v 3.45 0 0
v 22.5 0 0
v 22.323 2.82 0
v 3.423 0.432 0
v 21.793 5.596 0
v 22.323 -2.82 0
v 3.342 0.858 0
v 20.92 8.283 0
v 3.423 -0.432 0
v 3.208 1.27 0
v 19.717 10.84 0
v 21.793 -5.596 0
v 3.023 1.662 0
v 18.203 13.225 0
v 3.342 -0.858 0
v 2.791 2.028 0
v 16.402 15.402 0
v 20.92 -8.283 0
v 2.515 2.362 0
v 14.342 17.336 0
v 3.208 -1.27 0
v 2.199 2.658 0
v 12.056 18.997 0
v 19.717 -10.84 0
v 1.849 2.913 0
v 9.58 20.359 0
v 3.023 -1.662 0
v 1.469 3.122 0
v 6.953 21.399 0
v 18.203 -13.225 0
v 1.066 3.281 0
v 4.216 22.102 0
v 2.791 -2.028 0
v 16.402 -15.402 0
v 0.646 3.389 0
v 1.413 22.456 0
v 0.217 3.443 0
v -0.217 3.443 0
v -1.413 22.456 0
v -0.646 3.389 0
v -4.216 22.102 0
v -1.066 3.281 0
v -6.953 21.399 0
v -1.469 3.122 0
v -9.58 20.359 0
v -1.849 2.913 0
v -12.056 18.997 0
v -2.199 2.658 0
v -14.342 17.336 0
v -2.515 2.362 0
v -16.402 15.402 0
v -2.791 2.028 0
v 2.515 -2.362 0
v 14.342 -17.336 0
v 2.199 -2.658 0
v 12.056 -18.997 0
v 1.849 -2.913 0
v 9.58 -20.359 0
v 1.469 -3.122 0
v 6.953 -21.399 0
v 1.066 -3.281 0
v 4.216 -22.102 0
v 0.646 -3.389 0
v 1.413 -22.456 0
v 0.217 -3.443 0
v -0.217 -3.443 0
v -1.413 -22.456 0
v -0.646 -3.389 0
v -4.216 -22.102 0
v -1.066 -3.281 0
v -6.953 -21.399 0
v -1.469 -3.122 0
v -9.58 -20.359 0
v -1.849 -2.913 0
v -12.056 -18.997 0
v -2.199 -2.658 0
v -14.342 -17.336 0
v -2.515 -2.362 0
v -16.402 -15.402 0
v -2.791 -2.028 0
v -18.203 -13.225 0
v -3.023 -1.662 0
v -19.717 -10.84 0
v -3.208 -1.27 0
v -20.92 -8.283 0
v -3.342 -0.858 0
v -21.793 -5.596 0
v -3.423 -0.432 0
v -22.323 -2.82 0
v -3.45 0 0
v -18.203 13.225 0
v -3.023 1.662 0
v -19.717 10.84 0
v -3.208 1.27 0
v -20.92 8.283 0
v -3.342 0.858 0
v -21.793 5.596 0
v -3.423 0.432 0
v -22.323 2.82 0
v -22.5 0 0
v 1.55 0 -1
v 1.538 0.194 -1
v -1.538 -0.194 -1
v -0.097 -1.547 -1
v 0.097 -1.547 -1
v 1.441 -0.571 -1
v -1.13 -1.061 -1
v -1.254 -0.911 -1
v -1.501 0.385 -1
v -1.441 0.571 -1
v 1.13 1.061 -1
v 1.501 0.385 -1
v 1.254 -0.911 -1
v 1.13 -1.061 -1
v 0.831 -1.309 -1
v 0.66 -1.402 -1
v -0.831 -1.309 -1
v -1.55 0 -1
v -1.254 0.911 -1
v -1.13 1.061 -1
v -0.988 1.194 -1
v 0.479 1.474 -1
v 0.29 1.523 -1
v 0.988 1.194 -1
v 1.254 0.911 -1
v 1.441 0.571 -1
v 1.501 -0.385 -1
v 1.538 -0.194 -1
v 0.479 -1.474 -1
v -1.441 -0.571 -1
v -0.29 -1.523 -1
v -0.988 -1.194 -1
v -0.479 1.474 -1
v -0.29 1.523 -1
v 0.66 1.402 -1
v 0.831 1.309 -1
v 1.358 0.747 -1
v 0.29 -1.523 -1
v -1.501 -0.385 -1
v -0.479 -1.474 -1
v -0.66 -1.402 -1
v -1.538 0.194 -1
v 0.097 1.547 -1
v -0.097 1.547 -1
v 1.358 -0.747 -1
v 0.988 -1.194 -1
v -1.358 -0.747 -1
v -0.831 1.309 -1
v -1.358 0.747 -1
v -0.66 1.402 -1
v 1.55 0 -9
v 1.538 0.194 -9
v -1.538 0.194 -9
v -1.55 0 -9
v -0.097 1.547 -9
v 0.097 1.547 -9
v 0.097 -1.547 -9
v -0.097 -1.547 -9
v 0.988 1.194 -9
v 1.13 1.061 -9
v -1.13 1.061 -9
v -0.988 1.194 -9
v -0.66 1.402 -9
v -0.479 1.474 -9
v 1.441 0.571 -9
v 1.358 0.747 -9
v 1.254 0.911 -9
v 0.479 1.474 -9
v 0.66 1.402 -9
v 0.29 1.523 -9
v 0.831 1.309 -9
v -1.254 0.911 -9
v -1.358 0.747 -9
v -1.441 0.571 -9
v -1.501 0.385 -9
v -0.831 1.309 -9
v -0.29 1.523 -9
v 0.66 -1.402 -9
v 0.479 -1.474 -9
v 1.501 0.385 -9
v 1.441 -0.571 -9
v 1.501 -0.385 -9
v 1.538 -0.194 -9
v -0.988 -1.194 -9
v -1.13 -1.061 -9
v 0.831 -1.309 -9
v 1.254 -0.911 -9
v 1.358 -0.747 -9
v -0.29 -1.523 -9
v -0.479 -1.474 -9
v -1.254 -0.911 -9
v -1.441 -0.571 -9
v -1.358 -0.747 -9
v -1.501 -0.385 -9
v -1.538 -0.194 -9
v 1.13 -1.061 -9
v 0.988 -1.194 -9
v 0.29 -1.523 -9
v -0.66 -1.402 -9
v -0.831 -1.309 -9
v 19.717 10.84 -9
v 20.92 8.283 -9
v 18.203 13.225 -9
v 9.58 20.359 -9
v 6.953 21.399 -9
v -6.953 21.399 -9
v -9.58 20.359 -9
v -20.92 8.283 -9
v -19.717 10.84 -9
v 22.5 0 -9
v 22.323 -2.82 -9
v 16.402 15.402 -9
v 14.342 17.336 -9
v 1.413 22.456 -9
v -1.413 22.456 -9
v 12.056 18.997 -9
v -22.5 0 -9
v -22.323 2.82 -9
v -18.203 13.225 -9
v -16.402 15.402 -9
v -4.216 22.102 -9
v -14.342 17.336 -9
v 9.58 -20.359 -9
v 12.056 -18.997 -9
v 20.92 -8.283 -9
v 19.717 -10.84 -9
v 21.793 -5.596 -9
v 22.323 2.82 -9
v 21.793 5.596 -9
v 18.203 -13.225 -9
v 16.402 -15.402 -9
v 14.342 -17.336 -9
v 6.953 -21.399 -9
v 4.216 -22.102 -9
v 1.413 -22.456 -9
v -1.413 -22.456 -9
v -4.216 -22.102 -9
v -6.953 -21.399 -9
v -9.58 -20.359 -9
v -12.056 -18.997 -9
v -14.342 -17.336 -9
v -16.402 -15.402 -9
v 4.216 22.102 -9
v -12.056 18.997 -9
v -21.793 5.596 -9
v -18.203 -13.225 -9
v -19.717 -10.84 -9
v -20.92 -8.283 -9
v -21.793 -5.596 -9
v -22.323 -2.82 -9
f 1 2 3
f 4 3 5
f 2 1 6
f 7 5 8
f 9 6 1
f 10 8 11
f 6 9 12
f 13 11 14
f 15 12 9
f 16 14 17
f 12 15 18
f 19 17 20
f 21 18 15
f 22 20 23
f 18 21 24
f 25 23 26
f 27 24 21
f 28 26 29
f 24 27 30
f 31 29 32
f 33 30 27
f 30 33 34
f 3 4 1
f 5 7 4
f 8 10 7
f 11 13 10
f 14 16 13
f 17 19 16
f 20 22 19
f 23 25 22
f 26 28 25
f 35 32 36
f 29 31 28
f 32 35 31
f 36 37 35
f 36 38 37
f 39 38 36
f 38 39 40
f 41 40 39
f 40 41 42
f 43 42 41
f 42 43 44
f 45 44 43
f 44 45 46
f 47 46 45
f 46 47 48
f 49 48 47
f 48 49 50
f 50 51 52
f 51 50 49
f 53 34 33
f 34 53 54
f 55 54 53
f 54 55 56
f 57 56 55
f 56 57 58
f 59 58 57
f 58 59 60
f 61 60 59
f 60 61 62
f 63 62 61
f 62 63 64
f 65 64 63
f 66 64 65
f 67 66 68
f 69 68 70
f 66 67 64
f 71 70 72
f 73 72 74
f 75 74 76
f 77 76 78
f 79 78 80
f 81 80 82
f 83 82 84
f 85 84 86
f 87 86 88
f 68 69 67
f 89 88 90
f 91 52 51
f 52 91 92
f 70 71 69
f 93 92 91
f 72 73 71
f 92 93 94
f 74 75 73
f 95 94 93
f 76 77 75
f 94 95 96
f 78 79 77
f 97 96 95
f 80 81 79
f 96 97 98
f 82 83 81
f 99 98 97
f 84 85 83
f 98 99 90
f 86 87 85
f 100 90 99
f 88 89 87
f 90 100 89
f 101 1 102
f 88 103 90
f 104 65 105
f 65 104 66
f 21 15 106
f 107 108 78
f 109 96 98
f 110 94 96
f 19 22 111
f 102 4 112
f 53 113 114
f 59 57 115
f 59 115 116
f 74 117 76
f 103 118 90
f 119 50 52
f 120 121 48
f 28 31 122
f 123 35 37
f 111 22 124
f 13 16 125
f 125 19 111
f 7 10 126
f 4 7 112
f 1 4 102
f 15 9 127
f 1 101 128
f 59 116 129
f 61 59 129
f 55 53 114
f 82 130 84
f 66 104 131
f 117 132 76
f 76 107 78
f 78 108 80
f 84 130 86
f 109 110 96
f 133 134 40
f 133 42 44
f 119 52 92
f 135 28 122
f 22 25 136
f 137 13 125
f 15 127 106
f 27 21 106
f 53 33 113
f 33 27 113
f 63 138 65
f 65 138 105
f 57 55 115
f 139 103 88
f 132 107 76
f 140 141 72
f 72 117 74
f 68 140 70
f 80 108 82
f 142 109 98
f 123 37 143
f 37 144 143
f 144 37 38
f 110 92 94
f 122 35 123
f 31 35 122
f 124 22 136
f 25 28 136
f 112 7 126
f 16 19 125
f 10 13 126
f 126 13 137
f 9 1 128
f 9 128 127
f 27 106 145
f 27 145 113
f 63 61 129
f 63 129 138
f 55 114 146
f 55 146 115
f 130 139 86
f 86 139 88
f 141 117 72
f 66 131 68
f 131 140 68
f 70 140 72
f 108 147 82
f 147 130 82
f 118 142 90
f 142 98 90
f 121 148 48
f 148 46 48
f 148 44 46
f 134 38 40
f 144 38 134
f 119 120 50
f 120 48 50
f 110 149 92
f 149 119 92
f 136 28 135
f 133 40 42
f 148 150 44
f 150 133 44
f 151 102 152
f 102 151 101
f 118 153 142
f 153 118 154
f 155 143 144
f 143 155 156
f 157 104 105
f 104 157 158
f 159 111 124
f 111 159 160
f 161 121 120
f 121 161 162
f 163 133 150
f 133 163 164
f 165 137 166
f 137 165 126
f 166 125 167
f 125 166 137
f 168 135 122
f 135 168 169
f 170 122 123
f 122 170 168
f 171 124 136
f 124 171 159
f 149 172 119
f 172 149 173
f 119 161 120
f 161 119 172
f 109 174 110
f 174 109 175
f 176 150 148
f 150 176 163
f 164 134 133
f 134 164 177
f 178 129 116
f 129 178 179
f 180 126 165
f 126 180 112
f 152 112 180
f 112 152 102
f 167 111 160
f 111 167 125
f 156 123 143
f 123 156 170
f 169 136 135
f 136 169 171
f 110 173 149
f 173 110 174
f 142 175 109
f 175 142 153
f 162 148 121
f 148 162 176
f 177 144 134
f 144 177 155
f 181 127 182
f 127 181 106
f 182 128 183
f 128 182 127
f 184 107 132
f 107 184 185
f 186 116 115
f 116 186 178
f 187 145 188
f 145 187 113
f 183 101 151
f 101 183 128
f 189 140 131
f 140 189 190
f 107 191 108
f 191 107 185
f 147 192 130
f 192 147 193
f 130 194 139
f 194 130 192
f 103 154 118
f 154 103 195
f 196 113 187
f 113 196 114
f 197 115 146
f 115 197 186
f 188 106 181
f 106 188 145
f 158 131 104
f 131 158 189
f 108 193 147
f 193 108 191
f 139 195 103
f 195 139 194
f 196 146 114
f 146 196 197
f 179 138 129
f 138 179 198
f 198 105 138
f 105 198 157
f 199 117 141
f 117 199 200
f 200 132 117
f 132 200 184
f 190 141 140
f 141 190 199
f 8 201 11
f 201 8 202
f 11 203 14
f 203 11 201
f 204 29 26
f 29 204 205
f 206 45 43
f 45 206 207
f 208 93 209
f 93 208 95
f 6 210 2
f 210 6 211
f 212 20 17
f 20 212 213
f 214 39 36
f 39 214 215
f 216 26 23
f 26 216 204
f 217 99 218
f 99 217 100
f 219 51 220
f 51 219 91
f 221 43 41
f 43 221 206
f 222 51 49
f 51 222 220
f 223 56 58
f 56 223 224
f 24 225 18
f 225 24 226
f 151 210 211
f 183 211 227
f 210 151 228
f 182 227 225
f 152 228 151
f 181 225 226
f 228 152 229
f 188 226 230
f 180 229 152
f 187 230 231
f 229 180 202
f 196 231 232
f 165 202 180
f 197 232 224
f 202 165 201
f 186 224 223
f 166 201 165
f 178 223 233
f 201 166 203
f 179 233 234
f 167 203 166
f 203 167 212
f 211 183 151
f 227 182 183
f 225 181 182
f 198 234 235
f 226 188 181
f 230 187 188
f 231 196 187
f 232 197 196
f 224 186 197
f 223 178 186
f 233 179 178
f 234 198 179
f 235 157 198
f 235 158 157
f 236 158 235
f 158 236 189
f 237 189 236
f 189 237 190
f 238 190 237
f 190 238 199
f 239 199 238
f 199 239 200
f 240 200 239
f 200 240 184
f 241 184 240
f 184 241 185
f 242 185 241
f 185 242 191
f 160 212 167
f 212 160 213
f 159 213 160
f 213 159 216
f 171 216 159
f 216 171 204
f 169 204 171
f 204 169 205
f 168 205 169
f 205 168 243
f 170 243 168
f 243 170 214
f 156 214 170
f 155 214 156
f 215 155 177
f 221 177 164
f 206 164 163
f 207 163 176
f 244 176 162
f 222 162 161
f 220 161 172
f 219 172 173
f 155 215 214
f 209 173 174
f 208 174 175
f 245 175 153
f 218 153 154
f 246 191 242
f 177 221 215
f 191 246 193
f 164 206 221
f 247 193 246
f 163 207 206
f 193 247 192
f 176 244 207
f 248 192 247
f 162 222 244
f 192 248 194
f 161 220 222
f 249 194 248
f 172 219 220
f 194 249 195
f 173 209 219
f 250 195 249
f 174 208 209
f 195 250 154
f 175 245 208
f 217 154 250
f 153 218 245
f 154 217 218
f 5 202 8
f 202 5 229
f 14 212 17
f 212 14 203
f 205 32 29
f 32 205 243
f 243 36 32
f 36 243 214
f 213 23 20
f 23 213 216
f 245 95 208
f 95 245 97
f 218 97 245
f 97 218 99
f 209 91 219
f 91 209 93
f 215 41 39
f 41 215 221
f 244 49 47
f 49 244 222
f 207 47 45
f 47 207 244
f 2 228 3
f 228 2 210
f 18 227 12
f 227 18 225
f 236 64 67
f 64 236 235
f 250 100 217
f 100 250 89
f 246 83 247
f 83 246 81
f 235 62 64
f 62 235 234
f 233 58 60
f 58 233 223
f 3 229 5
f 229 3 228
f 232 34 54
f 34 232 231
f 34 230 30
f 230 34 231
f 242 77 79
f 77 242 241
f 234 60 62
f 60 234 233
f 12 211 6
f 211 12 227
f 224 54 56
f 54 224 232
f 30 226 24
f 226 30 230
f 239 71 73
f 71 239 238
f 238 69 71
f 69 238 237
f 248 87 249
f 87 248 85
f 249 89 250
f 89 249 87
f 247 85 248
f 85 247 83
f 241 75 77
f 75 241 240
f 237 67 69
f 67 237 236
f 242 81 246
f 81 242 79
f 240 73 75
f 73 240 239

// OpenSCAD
$fn = 50;


difference() {
	union() {
		translate(v = [0, 0, -9.0000000000]) {
			cylinder(h = 9, r = 22.5000000000);
		}
	}
	union() {
		translate(v = [0, 0, 0]) {
			rotate(a = [0, 0, 0]) {
				difference() {
					union() {
						translate(v = [0, 0, -12.0000000000]) {
							cylinder(h = 12, r = 1.2500000000);
						}
						translate(v = [0, 0, -1.0000000000]) {
							cylinder(h = 1.0000000000, r1 = 1.5500000000, r2 = 3.4500000000);
						}
						translate(v = [0, 0, -12.0000000000]) {
							cylinder(h = 12, r = 1.5500000000);
						}
						translate(v = [0, 0, -12.0000000000]) {
							cylinder(h = 12, r = 1.2500000000);
						}
					}
					union();
				}
			}
		}
	}
}
